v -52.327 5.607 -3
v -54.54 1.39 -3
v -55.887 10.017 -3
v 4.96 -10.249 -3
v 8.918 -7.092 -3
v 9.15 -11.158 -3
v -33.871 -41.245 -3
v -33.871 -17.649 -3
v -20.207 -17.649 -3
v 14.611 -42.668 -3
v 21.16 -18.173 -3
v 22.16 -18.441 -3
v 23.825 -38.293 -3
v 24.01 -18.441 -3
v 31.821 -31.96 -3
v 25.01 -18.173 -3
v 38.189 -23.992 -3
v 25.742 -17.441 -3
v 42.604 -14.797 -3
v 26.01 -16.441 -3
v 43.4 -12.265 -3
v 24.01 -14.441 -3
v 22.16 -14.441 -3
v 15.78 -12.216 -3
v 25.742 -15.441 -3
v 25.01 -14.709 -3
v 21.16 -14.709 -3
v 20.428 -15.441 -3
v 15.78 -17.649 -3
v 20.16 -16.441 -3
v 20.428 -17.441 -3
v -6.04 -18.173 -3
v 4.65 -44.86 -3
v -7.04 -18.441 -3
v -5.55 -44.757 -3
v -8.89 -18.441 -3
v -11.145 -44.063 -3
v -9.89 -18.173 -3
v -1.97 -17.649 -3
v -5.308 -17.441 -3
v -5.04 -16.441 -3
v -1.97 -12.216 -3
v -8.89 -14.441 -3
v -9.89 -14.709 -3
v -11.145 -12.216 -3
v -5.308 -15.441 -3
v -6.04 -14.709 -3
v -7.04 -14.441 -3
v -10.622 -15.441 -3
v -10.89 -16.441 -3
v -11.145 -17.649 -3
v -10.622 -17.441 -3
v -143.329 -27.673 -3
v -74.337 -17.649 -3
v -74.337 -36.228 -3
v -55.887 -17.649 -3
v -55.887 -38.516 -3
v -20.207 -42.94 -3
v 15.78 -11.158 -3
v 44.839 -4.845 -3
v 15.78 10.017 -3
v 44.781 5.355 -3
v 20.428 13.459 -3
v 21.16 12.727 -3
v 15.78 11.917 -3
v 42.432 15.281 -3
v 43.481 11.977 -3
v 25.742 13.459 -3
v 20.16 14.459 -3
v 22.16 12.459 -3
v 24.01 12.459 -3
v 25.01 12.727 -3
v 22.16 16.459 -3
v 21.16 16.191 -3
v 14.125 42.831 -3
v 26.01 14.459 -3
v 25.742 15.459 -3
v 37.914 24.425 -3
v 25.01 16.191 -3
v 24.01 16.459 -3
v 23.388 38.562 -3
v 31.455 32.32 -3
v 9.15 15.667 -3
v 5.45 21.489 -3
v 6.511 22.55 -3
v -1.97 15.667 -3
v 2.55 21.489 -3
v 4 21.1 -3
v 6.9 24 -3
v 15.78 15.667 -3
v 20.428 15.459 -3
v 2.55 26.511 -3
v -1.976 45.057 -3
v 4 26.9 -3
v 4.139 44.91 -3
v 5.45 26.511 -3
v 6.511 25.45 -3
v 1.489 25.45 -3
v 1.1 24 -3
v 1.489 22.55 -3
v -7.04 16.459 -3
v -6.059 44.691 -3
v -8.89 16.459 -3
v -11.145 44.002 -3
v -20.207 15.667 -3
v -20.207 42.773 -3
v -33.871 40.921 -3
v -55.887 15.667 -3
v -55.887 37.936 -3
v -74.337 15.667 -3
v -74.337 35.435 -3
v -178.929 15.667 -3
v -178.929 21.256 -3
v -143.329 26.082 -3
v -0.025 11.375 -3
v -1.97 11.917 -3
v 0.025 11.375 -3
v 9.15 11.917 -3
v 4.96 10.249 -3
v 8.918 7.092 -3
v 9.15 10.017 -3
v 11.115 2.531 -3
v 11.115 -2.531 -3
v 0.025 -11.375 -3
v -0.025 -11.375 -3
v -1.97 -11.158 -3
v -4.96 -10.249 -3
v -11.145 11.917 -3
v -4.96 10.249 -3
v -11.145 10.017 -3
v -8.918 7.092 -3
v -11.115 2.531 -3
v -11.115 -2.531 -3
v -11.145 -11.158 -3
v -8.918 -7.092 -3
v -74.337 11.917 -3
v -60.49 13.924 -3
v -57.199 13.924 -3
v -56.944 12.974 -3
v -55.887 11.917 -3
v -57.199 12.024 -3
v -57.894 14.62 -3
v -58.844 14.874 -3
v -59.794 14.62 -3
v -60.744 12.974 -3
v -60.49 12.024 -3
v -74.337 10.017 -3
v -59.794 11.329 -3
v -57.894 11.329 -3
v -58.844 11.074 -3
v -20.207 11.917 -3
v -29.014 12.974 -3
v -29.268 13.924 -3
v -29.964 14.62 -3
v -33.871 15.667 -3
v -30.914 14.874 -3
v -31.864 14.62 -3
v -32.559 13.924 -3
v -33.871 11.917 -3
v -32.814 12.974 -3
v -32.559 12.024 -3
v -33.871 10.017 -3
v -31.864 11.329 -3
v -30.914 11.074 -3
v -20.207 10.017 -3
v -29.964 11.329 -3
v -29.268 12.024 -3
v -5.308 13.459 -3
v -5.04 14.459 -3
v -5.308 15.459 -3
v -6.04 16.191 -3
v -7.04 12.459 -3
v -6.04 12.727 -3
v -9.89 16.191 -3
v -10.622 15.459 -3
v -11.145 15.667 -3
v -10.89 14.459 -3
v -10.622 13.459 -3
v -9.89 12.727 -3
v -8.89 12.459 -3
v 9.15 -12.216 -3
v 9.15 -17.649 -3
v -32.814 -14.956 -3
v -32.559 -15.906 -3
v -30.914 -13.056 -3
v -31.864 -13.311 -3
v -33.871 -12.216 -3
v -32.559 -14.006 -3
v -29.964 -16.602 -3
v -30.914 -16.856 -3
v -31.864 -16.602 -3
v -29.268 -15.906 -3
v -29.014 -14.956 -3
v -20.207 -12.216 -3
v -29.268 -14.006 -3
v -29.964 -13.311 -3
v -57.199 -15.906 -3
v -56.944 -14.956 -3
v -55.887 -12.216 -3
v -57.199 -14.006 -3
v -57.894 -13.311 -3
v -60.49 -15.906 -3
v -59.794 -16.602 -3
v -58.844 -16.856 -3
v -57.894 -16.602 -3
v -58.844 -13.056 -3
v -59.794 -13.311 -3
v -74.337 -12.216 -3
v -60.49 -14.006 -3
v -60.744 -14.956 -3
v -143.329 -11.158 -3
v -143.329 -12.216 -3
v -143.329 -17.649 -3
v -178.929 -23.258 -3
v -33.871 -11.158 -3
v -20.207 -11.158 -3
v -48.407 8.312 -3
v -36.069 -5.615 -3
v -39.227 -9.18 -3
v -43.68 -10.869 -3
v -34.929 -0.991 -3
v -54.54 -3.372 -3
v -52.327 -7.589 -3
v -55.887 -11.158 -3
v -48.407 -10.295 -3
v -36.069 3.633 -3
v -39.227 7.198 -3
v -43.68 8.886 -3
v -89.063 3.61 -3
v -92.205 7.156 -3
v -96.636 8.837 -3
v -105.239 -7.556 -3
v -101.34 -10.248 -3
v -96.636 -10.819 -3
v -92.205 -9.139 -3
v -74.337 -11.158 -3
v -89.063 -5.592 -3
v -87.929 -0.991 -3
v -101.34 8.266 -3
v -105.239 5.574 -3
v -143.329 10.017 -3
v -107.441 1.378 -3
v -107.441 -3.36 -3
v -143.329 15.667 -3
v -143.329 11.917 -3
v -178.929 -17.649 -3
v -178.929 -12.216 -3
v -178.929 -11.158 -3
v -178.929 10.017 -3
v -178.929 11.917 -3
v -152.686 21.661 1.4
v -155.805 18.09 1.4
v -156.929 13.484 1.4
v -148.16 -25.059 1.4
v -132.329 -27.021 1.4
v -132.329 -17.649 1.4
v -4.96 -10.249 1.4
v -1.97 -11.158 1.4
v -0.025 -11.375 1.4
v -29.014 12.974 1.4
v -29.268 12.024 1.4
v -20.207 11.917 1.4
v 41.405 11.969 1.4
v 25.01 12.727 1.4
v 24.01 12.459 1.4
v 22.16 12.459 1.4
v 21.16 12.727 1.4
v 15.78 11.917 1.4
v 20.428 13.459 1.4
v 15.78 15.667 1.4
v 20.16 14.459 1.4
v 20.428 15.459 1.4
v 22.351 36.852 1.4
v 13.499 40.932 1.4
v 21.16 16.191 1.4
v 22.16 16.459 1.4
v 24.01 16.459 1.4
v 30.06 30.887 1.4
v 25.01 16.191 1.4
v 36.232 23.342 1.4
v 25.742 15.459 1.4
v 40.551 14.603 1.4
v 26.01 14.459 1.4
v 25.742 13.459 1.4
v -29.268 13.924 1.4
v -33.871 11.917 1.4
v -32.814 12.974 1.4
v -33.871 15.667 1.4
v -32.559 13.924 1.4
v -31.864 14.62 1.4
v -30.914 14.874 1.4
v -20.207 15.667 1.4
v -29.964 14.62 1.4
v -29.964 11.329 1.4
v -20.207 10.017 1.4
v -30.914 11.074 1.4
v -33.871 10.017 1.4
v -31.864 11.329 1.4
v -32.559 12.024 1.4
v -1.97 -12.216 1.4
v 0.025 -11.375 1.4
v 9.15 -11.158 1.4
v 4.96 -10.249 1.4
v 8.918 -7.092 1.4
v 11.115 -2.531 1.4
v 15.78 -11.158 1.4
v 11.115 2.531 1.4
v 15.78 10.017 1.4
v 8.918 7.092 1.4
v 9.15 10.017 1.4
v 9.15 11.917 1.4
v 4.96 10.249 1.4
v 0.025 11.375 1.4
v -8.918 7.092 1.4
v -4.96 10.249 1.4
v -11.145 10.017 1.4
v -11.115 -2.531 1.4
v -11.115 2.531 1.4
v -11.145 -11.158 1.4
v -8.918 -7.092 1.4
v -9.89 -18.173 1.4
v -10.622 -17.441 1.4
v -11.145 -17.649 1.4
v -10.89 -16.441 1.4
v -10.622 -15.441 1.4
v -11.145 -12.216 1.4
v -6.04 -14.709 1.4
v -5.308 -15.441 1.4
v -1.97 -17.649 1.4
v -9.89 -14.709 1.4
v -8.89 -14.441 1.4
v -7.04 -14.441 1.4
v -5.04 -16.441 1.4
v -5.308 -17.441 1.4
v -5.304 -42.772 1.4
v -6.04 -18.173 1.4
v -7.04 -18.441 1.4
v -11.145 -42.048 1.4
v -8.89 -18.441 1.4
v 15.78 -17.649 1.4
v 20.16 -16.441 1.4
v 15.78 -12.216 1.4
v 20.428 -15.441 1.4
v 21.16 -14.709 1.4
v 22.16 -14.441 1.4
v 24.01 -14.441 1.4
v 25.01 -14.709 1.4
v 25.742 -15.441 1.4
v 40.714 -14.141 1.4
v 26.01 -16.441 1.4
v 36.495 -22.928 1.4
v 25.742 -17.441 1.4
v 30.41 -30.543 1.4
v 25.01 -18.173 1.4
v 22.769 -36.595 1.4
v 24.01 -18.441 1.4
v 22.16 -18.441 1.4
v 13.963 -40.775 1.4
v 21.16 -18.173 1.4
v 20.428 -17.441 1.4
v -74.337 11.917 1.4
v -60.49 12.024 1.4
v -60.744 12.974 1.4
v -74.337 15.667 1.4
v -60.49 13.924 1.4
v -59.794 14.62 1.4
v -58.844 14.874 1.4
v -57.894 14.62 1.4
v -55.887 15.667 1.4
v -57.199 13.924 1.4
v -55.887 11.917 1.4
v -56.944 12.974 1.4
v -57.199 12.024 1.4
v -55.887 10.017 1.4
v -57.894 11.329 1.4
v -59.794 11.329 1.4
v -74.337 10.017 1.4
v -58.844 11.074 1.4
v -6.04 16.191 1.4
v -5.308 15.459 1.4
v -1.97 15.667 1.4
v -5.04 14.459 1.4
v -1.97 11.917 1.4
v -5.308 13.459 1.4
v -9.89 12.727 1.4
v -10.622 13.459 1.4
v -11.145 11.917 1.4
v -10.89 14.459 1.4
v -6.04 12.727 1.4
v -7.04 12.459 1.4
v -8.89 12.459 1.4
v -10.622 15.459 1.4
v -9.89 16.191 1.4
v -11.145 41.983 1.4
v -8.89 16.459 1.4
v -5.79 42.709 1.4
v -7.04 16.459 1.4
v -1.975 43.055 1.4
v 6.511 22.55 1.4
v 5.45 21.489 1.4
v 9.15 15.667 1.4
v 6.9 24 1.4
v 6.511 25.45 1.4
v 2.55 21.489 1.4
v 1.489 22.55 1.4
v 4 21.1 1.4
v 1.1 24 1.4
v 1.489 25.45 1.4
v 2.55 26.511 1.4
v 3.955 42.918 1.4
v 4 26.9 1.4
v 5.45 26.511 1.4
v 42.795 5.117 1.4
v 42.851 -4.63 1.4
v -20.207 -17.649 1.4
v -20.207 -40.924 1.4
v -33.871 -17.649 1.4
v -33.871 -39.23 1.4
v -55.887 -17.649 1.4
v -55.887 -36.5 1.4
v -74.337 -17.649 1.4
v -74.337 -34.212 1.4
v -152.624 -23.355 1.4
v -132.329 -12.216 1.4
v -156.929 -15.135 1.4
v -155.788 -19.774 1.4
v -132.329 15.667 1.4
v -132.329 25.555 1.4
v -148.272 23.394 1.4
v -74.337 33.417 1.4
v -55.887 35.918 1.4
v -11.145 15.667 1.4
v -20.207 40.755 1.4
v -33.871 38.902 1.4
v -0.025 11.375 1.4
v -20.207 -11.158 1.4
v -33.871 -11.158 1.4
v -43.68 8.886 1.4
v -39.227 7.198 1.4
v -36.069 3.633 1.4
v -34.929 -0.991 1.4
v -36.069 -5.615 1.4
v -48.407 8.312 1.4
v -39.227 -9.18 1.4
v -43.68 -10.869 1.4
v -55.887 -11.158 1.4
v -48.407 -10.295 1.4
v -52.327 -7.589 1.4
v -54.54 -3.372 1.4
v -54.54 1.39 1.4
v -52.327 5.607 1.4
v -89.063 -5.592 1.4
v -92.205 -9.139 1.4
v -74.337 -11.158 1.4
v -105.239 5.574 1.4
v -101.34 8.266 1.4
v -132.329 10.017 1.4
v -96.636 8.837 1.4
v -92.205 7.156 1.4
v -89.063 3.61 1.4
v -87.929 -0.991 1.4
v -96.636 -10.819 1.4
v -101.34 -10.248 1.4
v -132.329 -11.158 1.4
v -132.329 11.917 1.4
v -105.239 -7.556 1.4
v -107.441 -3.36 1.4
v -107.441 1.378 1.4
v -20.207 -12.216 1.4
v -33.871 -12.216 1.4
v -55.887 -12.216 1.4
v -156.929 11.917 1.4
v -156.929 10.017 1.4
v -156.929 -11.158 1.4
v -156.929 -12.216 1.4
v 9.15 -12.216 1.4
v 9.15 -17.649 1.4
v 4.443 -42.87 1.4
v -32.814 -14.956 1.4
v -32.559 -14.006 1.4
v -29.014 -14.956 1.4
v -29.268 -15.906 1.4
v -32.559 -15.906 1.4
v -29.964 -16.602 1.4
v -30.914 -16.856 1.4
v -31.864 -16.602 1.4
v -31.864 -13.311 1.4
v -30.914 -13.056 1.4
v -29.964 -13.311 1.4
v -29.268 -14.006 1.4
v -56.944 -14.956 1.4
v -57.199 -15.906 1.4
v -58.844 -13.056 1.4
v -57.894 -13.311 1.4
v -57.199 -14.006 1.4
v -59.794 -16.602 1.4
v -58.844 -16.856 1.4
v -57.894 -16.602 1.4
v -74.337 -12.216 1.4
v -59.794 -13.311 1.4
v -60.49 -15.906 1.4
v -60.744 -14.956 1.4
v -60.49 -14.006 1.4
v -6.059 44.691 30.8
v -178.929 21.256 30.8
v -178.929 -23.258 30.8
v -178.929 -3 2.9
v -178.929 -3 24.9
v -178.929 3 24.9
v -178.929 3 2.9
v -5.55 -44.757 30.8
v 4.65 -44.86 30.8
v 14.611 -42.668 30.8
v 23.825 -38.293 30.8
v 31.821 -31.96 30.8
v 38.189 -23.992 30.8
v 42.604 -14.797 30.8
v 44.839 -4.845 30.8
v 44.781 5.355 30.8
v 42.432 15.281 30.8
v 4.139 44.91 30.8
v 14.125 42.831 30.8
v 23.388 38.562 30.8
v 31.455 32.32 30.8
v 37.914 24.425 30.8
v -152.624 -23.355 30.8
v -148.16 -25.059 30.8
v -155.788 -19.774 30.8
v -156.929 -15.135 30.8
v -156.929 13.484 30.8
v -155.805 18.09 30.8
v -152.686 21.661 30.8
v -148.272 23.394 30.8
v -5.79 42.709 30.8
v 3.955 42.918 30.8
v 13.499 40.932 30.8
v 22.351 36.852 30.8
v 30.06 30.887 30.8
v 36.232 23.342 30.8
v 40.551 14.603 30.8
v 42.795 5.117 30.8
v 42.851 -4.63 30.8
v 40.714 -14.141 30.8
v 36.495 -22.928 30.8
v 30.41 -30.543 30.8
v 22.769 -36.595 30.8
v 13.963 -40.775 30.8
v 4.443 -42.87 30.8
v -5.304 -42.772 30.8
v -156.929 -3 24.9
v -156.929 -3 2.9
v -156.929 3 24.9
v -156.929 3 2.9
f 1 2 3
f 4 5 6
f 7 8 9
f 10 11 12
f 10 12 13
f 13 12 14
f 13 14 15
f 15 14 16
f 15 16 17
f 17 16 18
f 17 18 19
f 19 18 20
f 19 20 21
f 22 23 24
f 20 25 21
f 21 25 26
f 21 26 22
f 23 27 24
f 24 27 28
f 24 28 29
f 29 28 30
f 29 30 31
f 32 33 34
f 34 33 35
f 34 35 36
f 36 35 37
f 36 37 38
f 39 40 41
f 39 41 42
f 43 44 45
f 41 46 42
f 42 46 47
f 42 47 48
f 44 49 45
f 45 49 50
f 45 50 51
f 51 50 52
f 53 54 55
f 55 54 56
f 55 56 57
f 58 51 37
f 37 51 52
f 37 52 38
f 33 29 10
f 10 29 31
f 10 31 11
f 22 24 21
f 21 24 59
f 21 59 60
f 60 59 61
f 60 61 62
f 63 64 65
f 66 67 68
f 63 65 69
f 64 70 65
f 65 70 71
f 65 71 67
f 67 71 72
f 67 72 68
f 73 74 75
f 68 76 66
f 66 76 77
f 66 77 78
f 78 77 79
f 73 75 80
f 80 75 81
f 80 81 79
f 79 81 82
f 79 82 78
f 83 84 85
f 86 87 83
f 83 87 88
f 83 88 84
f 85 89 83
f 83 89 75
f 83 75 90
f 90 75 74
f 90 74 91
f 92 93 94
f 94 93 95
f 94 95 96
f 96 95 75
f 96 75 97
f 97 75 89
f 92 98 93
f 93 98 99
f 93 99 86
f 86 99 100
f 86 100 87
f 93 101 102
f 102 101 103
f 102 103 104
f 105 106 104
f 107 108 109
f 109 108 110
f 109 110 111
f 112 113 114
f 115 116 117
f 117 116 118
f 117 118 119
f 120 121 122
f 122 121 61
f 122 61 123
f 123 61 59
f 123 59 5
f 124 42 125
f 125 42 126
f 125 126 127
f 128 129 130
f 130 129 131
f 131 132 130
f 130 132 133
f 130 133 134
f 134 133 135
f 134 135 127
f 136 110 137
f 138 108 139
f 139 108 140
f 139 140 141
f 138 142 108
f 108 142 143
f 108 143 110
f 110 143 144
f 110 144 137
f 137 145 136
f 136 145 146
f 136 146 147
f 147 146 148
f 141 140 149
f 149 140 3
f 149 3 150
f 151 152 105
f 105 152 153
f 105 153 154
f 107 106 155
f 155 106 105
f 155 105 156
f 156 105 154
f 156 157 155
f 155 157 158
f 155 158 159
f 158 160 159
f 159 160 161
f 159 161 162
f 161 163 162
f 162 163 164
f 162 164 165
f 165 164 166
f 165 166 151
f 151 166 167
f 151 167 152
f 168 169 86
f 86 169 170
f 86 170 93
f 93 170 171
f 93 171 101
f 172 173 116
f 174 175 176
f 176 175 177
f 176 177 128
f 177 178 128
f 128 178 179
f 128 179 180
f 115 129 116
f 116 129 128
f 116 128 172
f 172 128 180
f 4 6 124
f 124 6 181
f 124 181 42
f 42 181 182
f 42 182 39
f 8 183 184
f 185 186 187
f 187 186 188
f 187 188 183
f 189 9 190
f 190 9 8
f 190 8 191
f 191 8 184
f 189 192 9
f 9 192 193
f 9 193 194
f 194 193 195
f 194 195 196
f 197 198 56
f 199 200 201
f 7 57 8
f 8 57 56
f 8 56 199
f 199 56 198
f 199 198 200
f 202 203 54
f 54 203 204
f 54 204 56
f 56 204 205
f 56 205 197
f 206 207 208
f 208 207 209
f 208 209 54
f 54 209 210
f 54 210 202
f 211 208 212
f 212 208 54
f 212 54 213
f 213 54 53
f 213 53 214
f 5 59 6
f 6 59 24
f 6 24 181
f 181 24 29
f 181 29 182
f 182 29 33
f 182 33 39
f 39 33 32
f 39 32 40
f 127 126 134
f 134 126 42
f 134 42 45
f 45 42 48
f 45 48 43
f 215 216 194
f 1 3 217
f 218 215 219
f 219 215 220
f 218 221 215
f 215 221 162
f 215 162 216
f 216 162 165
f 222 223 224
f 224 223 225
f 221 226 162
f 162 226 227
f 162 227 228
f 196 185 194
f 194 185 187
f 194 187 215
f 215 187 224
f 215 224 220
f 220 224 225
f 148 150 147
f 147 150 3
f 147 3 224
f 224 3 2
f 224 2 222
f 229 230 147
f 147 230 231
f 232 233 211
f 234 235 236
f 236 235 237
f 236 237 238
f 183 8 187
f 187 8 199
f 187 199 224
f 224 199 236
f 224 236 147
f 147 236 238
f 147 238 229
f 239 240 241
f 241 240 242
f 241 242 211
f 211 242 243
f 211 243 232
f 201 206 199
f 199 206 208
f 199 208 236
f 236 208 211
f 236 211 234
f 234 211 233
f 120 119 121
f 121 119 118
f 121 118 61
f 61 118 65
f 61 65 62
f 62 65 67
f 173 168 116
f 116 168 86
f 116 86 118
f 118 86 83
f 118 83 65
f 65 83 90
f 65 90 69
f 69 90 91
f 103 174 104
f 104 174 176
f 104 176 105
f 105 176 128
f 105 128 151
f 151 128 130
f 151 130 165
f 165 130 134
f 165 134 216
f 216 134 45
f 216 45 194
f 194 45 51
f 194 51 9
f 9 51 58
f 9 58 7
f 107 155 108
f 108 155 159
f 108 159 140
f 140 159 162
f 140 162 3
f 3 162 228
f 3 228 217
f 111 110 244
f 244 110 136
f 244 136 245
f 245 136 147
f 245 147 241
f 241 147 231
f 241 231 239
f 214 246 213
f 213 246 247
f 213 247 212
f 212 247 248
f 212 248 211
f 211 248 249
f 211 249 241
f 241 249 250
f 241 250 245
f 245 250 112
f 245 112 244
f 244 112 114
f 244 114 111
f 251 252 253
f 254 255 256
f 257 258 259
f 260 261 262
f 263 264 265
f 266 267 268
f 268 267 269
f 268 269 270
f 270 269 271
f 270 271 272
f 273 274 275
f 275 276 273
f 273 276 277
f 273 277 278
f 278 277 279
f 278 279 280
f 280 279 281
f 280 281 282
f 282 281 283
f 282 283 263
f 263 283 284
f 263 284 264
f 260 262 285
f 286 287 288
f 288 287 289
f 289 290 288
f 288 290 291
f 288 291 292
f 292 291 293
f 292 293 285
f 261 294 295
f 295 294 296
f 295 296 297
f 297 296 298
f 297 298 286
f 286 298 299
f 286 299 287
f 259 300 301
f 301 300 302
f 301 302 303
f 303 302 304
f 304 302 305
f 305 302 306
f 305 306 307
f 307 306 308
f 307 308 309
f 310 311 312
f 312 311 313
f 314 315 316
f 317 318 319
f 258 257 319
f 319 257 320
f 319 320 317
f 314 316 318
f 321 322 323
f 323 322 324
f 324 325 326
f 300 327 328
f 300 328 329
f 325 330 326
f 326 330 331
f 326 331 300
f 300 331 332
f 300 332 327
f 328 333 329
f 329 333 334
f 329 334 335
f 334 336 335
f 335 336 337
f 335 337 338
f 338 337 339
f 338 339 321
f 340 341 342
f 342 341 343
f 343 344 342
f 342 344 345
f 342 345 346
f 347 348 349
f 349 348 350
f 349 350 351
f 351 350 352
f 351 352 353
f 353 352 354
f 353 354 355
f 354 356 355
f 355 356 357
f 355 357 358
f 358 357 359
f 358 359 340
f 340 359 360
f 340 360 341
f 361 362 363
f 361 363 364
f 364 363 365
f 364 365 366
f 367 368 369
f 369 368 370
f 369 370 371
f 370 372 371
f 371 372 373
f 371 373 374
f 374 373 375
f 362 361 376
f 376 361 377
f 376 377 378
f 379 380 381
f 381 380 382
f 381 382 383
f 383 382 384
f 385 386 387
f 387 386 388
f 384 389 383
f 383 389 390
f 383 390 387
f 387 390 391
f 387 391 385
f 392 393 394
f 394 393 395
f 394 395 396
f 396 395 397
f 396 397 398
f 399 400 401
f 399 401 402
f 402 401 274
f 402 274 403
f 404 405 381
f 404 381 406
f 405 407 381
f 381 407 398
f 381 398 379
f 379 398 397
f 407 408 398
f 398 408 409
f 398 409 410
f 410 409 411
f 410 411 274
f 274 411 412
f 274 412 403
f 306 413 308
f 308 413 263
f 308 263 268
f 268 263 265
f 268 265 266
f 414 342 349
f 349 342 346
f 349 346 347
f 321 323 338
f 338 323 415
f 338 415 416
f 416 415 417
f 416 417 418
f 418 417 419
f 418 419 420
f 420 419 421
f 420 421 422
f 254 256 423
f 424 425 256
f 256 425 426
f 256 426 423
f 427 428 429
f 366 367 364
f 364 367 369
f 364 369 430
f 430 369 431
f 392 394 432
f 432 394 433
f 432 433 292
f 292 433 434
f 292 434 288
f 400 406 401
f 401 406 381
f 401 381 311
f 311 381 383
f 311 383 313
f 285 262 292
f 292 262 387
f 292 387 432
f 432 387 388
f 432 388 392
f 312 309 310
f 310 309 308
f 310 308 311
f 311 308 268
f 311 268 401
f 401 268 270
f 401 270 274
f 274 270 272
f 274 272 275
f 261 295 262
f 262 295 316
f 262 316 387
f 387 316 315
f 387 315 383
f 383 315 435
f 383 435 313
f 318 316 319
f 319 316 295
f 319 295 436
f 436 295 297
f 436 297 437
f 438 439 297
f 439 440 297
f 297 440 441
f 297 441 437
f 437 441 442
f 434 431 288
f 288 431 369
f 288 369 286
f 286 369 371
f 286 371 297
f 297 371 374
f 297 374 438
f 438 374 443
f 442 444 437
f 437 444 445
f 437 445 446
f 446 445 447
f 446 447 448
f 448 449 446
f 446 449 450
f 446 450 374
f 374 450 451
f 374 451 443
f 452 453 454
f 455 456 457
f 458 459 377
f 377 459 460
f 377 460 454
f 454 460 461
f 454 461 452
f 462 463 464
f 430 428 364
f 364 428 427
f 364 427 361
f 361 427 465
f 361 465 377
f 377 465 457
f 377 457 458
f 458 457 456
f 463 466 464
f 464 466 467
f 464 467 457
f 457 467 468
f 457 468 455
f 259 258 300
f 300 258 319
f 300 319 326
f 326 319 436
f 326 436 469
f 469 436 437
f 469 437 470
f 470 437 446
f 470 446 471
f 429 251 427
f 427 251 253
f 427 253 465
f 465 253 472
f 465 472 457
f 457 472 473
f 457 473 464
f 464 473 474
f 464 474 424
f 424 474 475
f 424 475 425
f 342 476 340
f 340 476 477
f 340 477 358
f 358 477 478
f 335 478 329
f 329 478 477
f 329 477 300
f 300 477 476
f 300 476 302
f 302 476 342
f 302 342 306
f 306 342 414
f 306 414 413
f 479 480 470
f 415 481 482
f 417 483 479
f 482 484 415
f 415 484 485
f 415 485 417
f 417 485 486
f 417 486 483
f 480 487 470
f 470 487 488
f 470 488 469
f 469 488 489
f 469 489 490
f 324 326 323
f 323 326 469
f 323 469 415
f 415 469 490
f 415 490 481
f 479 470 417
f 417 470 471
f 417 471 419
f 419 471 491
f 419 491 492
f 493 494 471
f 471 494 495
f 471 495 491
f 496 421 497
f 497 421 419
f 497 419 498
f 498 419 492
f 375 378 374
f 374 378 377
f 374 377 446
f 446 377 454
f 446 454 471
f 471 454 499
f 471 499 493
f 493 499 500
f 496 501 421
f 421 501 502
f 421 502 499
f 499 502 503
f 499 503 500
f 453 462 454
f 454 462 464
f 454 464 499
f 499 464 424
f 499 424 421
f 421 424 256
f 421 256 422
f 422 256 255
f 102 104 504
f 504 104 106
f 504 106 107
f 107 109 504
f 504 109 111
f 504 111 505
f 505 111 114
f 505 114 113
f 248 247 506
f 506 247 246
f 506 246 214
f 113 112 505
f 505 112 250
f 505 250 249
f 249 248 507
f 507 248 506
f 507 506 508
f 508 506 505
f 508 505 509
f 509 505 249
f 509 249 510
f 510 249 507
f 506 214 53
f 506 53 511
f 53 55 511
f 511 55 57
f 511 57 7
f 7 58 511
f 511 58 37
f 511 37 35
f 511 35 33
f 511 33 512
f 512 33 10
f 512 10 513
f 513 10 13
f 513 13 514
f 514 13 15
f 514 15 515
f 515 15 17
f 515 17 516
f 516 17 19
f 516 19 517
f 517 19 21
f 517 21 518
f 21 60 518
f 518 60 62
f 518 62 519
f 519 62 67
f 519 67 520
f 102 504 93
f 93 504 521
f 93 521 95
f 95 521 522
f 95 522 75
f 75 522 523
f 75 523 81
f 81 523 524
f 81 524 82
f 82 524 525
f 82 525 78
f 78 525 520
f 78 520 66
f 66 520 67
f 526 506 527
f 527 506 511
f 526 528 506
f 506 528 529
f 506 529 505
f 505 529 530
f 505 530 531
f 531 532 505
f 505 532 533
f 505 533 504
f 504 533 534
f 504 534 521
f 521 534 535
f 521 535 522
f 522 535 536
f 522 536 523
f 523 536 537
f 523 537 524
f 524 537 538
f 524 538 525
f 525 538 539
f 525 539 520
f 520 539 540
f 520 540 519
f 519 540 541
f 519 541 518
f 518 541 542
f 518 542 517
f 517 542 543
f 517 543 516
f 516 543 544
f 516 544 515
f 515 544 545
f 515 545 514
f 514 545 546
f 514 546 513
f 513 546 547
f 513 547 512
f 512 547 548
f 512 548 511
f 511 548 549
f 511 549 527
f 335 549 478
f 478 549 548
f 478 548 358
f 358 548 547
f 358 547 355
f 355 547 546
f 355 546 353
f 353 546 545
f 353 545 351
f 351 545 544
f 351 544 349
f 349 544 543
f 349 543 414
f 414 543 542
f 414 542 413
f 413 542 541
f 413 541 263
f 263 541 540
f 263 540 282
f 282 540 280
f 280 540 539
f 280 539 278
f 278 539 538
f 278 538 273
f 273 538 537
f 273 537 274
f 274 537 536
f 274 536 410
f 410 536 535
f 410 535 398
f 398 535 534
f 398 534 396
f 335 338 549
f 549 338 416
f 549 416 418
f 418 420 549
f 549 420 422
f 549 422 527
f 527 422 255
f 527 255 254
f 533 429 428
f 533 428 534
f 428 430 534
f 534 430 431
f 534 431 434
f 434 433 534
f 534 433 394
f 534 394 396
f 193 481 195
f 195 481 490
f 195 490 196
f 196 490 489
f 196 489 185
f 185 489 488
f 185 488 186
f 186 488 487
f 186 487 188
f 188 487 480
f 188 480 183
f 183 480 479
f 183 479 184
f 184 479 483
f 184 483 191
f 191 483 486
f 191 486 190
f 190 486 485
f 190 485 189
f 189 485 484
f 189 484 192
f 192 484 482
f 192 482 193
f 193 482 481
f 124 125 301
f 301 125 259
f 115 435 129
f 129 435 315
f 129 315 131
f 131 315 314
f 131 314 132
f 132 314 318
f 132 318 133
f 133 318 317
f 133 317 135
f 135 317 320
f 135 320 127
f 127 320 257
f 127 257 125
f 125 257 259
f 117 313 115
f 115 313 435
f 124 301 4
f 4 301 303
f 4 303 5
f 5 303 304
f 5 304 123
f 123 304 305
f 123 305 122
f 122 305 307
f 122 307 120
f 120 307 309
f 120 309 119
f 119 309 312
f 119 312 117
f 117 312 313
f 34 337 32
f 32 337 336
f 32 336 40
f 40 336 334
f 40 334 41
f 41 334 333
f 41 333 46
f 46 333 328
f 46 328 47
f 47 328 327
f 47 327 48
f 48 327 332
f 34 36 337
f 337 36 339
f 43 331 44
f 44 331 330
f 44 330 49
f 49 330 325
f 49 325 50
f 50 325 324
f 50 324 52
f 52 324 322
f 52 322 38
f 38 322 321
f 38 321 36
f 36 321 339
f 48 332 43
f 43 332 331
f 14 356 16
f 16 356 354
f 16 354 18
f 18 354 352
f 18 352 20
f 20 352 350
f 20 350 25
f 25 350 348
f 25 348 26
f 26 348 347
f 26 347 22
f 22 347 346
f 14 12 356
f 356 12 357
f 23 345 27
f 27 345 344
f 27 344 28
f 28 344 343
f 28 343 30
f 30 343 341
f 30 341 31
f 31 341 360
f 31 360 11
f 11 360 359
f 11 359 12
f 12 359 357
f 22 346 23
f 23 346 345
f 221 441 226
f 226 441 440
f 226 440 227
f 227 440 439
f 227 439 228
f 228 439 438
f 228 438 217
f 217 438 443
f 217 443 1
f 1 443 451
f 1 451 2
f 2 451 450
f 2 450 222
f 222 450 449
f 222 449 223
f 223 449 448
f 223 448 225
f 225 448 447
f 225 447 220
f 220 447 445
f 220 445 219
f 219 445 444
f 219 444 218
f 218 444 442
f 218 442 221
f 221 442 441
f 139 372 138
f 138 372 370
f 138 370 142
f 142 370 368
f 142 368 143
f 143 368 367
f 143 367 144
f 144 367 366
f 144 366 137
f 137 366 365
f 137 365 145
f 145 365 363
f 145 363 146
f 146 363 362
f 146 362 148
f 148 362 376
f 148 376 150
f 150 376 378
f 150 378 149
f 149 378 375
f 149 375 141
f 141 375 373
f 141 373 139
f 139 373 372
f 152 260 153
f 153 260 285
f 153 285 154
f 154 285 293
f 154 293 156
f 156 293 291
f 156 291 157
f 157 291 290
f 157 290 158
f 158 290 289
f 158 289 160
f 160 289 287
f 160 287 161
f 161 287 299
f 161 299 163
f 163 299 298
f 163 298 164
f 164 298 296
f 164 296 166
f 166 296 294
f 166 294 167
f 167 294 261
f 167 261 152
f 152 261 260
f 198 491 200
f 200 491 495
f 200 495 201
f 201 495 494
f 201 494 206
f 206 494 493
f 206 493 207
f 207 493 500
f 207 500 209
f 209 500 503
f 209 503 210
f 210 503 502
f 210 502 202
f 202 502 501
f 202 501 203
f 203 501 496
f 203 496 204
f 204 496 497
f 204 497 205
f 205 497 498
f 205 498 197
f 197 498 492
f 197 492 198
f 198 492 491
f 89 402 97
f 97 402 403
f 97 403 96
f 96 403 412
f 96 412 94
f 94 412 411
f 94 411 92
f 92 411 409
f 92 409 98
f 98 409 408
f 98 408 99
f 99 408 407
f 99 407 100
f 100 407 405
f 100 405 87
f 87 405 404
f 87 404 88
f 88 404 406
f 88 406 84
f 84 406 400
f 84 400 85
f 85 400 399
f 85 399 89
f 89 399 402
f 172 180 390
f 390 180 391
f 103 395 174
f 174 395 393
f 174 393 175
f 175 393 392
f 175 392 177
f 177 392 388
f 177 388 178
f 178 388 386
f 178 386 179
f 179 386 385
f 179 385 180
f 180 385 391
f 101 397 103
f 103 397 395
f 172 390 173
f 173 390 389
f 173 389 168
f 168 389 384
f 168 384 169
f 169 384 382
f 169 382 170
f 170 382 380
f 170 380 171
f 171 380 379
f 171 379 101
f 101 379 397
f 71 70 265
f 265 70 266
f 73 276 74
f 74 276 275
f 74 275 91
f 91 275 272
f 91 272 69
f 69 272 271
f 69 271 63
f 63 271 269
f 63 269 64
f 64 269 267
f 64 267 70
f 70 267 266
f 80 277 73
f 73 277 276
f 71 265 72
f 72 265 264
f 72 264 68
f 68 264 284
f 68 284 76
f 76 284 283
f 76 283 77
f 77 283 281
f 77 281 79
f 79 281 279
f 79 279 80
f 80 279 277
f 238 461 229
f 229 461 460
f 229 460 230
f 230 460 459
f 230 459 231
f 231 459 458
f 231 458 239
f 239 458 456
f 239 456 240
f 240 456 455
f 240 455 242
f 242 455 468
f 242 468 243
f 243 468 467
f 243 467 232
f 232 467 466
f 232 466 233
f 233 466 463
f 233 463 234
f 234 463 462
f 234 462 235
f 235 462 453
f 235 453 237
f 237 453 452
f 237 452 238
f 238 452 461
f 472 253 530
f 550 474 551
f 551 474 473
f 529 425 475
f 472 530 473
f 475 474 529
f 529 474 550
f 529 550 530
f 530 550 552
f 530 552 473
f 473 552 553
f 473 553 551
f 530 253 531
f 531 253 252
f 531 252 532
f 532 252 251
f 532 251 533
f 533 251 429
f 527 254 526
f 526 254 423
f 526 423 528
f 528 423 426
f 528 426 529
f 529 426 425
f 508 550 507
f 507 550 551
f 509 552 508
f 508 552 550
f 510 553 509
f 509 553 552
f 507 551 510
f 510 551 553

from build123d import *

# Parameters (mm, degrees)
ESBO_O1_R                  = 9.95
ESBO_O1_R_2                = 1.9
ESBO_O1_R_3                = 10
ESBO_O1_R_4                = 2.9
RESSALTO_EXTRUS_O1_DEPTH   = 30.8
ESBO_O1_3_R                = 9.95
ESBO_O1_3_R_2              = 1.9
ESBO_O1_3_R_3              = 10
ESBO_O1_3_R_4              = 2.9
RESSALTO_EXTRUS_O2_DEPTH   = 3
RESSALTO_EXTRUS_O4_DEPTH   = 33.8
CORTE_EXTRUS_O1_DEPTH      = 29.4
ESBO_O1_4_R                = 9.95
ESBO_O1_4_R_2              = 1.9
ESBO_O1_4_R_3              = 10
ESBO_O1_4_R_4              = 2.9
CORTE_EXTRUS_O2_DEPTH      = 31.8
CORTE_EXTRUS_O2_DEPTH_BACK = 4
RESSALTO_EXTRUS_O5_DEPTH   = 30.8
FILETE1_R                  = 10
CORTE_EXTRUS_O3_REACH      = 226.029
ESBO_O5_W                  = 22
ESBO_O5_H                  = 6


with BuildPart() as part:
    # Esboço1 → Ressalto-extrusão1 (new body)
    with BuildSketch(Plane.XY):
        with BuildLine():
            Line((-176.929134073, 19.50886441), (-176.929134073, -21.49113559))
            Line((-176.929134073, -21.49113559), (-5.303716409, -42.772427944))
            ThreePointArc((-5.303716409, -42.772427944), (43.09930295, 0.245122927), (-5.789885285, 42.709334207))
            Line((-5.789885285, 42.709334207), (-176.929134073, 19.50886441))
        make_face()
        with Locations((-44.879134073, -0.99113559)):
            Circle(ESBO_O1_R, mode=Mode.SUBTRACT)
        with Locations((-58.844493002, 12.974223338)):
            Circle(ESBO_O1_R_2, mode=Mode.SUBTRACT)
        with Locations((-97.729134073, -0.99113559)):
            Circle(ESBO_O1_R_3, mode=Mode.SUBTRACT)
        with Locations((-58.844493002, -14.956494518)):
            Circle(ESBO_O1_R_2, mode=Mode.SUBTRACT)
        with Locations((4, 24)):
            Circle(ESBO_O1_R_4, mode=Mode.SUBTRACT)
        with BuildLine():
            Line((22.160394843, 16.45886441), (24.010394843, 16.45886441))
            ThreePointArc((24.010394843, 16.45886441), (26.010394843, 14.45886441), (24.010394843, 12.45886441))
            Line((24.010394843, 12.45886441), (22.160394843, 12.45886441))
            ThreePointArc((22.160394843, 12.45886441), (20.160394843, 14.45886441), (22.160394843, 16.45886441))
        make_face(mode=Mode.SUBTRACT)
        with Locations((-30.913775145, -14.956494518)):
            Circle(ESBO_O1_R_2, mode=Mode.SUBTRACT)
        with BuildLine():
            Line((-7.039605157, -18.44113559), (-8.889605157, -18.44113559))
            ThreePointArc((-8.889605157, -18.44113559), (-10.889605157, -16.44113559), (-8.889605157, -14.44113559))
            Line((-8.889605157, -14.44113559), (-7.039605157, -14.44113559))
            ThreePointArc((-7.039605157, -14.44113559), (-5.039605157, -16.44113559), (-7.039605157, -18.44113559))
        make_face(mode=Mode.SUBTRACT)
        with BuildLine():
            Line((24.010394843, -18.44113559), (22.160394843, -18.44113559))
            ThreePointArc((22.160394843, -18.44113559), (20.160394843, -16.44113559), (22.160394843, -14.44113559))
            Line((22.160394843, -14.44113559), (24.010394843, -14.44113559))
            ThreePointArc((24.010394843, -14.44113559), (26.010394843, -16.44113559), (24.010394843, -18.44113559))
        make_face(mode=Mode.SUBTRACT)
        with Locations((-30.913775145, 12.974223338)):
            Circle(ESBO_O1_R_2, mode=Mode.SUBTRACT)
        with BuildLine():
            ThreePointArc((-0.025, -11.375), (-11.4, 0), (-0.025, 11.375))
            Line((-0.025, 11.375), (0.025, 11.375))
            ThreePointArc((0.025, 11.375), (11.4, 0), (0.025, -11.375))
            Line((0.025, -11.375), (-0.025, -11.375))
        make_face(mode=Mode.SUBTRACT)
        with BuildLine():
            ThreePointArc((-8.889605157, 12.45886441), (-10.889605157, 14.45886441), (-8.889605157, 16.45886441))
            Line((-8.889605157, 16.45886441), (-7.039605157, 16.45886441))
            ThreePointArc((-7.039605157, 16.45886441), (-5.039605157, 14.45886441), (-7.039605157, 12.45886441))
            Line((-7.039605157, 12.45886441), (-8.889605157, 12.45886441))
        make_face(mode=Mode.SUBTRACT)
    extrude(amount=RESSALTO_EXTRUS_O1_DEPTH)

    # Esboço1<3> → Ressalto-extrusão2 (add)
    with BuildSketch(Plane.XY):
        with BuildLine():
            Line((-176.929134073, 19.50886441), (-176.929134073, -21.49113559))
            Line((-176.929134073, -21.49113559), (-5.303716409, -42.772427944))
            ThreePointArc((-5.303716409, -42.772427944), (43.09930295, 0.245122927), (-5.789885285, 42.709334207))
            Line((-5.789885285, 42.709334207), (-176.929134073, 19.50886441))
        make_face()
        with Locations((-44.879134073, -0.99113559)):
            Circle(ESBO_O1_3_R, mode=Mode.SUBTRACT)
        with Locations((-58.844493002, 12.974223338)):
            Circle(ESBO_O1_3_R_2, mode=Mode.SUBTRACT)
        with Locations((-97.729134073, -0.99113559)):
            Circle(ESBO_O1_3_R_3, mode=Mode.SUBTRACT)
        with Locations((-58.844493002, -14.956494518)):
            Circle(ESBO_O1_3_R_2, mode=Mode.SUBTRACT)
        with Locations((4, 24)):
            Circle(ESBO_O1_3_R_4, mode=Mode.SUBTRACT)
        with BuildLine():
            Line((22.160394843, 16.45886441), (24.010394843, 16.45886441))
            ThreePointArc((24.010394843, 16.45886441), (26.010394843, 14.45886441), (24.010394843, 12.45886441))
            Line((24.010394843, 12.45886441), (22.160394843, 12.45886441))
            ThreePointArc((22.160394843, 12.45886441), (20.160394843, 14.45886441), (22.160394843, 16.45886441))
        make_face(mode=Mode.SUBTRACT)
        with Locations((-30.913775145, -14.956494518)):
            Circle(ESBO_O1_3_R_2, mode=Mode.SUBTRACT)
        with BuildLine():
            Line((-7.039605157, -18.44113559), (-8.889605157, -18.44113559))
            ThreePointArc((-8.889605157, -18.44113559), (-10.889605157, -16.44113559), (-8.889605157, -14.44113559))
            Line((-8.889605157, -14.44113559), (-7.039605157, -14.44113559))
            ThreePointArc((-7.039605157, -14.44113559), (-5.039605157, -16.44113559), (-7.039605157, -18.44113559))
        make_face(mode=Mode.SUBTRACT)
        with BuildLine():
            Line((24.010394843, -18.44113559), (22.160394843, -18.44113559))
            ThreePointArc((22.160394843, -18.44113559), (20.160394843, -16.44113559), (22.160394843, -14.44113559))
            Line((22.160394843, -14.44113559), (24.010394843, -14.44113559))
            ThreePointArc((24.010394843, -14.44113559), (26.010394843, -16.44113559), (24.010394843, -18.44113559))
        make_face(mode=Mode.SUBTRACT)
        with Locations((-30.913775145, 12.974223338)):
            Circle(ESBO_O1_3_R_2, mode=Mode.SUBTRACT)
        with BuildLine():
            ThreePointArc((-0.025, -11.375), (-11.4, 0), (-0.025, 11.375))
            Line((-0.025, 11.375), (0.025, 11.375))
            ThreePointArc((0.025, 11.375), (11.4, 0), (0.025, -11.375))
            Line((0.025, -11.375), (-0.025, -11.375))
        make_face(mode=Mode.SUBTRACT)
        with BuildLine():
            ThreePointArc((-8.889605157, 12.45886441), (-10.889605157, 14.45886441), (-8.889605157, 16.45886441))
            Line((-8.889605157, 16.45886441), (-7.039605157, 16.45886441))
            ThreePointArc((-7.039605157, 16.45886441), (-5.039605157, 14.45886441), (-7.039605157, 12.45886441))
            Line((-7.039605157, 12.45886441), (-8.889605157, 12.45886441))
        make_face(mode=Mode.SUBTRACT)
    extrude(amount=-RESSALTO_EXTRUS_O2_DEPTH)

    # Esboço4 → Ressalto-extrusão4 (add, through all)
    with BuildSketch(Plane(origin=(0, 0, -3), x_dir=(-1, 0, 0), z_dir=(0, 0, -1))):
        with BuildLine():
            Line((5.549828539, -44.757227385), (178.929134073, -23.258455586))
            Line((178.929134073, -23.258455586), (178.929134073, 21.256028837))
            Line((178.929134073, 21.256028837), (6.058557456, 44.691205864))
            ThreePointArc((6.058557456, 44.691205864), (-45.099270604, 0.25649754), (5.549828539, -44.757227385))
        make_face()
    extrude(amount=-RESSALTO_EXTRUS_O4_DEPTH)

    # Esboço2 → Corte-extrusão1 (cut)
    with BuildSketch(Plane.XY.offset(30.8)):
        with BuildLine():
            Line((-5.789885285, 42.709334207), (-176.929134073, 19.50886441))
            Line((-176.929134073, 19.50886441), (-176.929134073, -21.49113559))
            Line((-176.929134073, -21.49113559), (-5.303716409, -42.772427944))
            ThreePointArc((-5.303716409, -42.772427944), (43.09930295, 0.245122927), (-5.789885285, 42.709334207))
        make_face()
    extrude(amount=-CORTE_EXTRUS_O1_DEPTH, mode=Mode.SUBTRACT)

    # Esboço1<4> → Corte-extrusão2 (cut, two sides)
    with BuildSketch(Plane.XY) as corte_extrus_o2_sk:
        with Locations((-44.879134073, -0.99113559)):
            Circle(ESBO_O1_4_R)
        with Locations((-30.913775145, 12.974223338)):
            Circle(ESBO_O1_4_R_2)
        with Locations((-58.844493002, -14.956494518)):
            Circle(ESBO_O1_4_R_2)
        with Locations((-30.913775145, -14.956494518)):
            Circle(ESBO_O1_4_R_2)
        with Locations((-58.844493002, 12.974223338)):
            Circle(ESBO_O1_4_R_2)
        with Locations((-97.729134073, -0.99113559)):
            Circle(ESBO_O1_4_R_3)
        with Locations((4, 24)):
            Circle(ESBO_O1_4_R_4)
        with BuildLine():
            Line((-0.025, 11.375), (0.025, 11.375))
            ThreePointArc((0.025, 11.375), (11.4, 0), (0.025, -11.375))
            Line((0.025, -11.375), (-0.025, -11.375))
            ThreePointArc((-0.025, -11.375), (-11.4, 0), (-0.025, 11.375))
        make_face()
        with BuildLine():
            Line((22.160394843, 16.45886441), (24.010394843, 16.45886441))
            ThreePointArc((24.010394843, 16.45886441), (26.010394843, 14.45886441), (24.010394843, 12.45886441))
            Line((24.010394843, 12.45886441), (22.160394843, 12.45886441))
            ThreePointArc((22.160394843, 12.45886441), (20.160394843, 14.45886441), (22.160394843, 16.45886441))
        make_face()
        with BuildLine():
            Line((-8.889605157, 16.45886441), (-7.039605157, 16.45886441))
            ThreePointArc((-7.039605157, 16.45886441), (-5.039605157, 14.45886441), (-7.039605157, 12.45886441))
            Line((-7.039605157, 12.45886441), (-8.889605157, 12.45886441))
            ThreePointArc((-8.889605157, 12.45886441), (-10.889605157, 14.45886441), (-8.889605157, 16.45886441))
        make_face()
        with BuildLine():
            Line((22.160394843, -18.44113559), (24.010394843, -18.44113559))
            ThreePointArc((24.010394843, -18.44113559), (26.010394843, -16.44113559), (24.010394843, -14.44113559))
            Line((24.010394843, -14.44113559), (22.160394843, -14.44113559))
            ThreePointArc((22.160394843, -14.44113559), (20.160394843, -16.44113559), (22.160394843, -18.44113559))
        make_face()
        with BuildLine():
            Line((-8.889605157, -18.44113559), (-7.039605157, -18.44113559))
            ThreePointArc((-7.039605157, -18.44113559), (-5.039605157, -16.44113559), (-7.039605157, -14.44113559))
            Line((-7.039605157, -14.44113559), (-8.889605157, -14.44113559))
            ThreePointArc((-8.889605157, -14.44113559), (-10.889605157, -16.44113559), (-8.889605157, -18.44113559))
        make_face()
    extrude(amount=CORTE_EXTRUS_O2_DEPTH, mode=Mode.SUBTRACT)
    extrude(corte_extrus_o2_sk.sketch, amount=-CORTE_EXTRUS_O2_DEPTH_BACK, mode=Mode.SUBTRACT)

    # Esboço1<5> → Ressalto-extrusão5 (add, through all)
    with BuildSketch(Plane.XY):
        Polygon((-156.929134073, 22.220161785), (-176.929134073, 19.50886441), (-176.929134073, -21.49113559), (-156.929134073, -23.971105357), align=None)
    extrude(amount=RESSALTO_EXTRUS_O5_DEPTH)

    # Filete1
    filete1_edges = [part.edges().sort_by_distance(p)[0] for p in [
        (-156.929134073, -23.971105357, 16.1),
        (-156.929134073, 22.220161785, 16.1),
    ]]
    fillet(filete1_edges, radius=FILETE1_R)

    # Esboço5 → Corte-extrusão3 (cut, up to next)
    with BuildSketch(Plane.ZY.offset(178.929134073), mode=Mode.PRIVATE) as corte_extrus_o3_sk1:
        with Locations((13.9, 0)):
            Rectangle(ESBO_O5_W, ESBO_O5_H)
    corte_extrus_o3_tool1 = extrude(corte_extrus_o3_sk1.sketch, amount=-CORTE_EXTRUS_O3_REACH, mode=Mode.PRIVATE) & part.part
    add(corte_extrus_o3_tool1.solids().sort_by_distance((-178.929134, 0, 13.9))[0], mode=Mode.SUBTRACT)


solid = part.part
